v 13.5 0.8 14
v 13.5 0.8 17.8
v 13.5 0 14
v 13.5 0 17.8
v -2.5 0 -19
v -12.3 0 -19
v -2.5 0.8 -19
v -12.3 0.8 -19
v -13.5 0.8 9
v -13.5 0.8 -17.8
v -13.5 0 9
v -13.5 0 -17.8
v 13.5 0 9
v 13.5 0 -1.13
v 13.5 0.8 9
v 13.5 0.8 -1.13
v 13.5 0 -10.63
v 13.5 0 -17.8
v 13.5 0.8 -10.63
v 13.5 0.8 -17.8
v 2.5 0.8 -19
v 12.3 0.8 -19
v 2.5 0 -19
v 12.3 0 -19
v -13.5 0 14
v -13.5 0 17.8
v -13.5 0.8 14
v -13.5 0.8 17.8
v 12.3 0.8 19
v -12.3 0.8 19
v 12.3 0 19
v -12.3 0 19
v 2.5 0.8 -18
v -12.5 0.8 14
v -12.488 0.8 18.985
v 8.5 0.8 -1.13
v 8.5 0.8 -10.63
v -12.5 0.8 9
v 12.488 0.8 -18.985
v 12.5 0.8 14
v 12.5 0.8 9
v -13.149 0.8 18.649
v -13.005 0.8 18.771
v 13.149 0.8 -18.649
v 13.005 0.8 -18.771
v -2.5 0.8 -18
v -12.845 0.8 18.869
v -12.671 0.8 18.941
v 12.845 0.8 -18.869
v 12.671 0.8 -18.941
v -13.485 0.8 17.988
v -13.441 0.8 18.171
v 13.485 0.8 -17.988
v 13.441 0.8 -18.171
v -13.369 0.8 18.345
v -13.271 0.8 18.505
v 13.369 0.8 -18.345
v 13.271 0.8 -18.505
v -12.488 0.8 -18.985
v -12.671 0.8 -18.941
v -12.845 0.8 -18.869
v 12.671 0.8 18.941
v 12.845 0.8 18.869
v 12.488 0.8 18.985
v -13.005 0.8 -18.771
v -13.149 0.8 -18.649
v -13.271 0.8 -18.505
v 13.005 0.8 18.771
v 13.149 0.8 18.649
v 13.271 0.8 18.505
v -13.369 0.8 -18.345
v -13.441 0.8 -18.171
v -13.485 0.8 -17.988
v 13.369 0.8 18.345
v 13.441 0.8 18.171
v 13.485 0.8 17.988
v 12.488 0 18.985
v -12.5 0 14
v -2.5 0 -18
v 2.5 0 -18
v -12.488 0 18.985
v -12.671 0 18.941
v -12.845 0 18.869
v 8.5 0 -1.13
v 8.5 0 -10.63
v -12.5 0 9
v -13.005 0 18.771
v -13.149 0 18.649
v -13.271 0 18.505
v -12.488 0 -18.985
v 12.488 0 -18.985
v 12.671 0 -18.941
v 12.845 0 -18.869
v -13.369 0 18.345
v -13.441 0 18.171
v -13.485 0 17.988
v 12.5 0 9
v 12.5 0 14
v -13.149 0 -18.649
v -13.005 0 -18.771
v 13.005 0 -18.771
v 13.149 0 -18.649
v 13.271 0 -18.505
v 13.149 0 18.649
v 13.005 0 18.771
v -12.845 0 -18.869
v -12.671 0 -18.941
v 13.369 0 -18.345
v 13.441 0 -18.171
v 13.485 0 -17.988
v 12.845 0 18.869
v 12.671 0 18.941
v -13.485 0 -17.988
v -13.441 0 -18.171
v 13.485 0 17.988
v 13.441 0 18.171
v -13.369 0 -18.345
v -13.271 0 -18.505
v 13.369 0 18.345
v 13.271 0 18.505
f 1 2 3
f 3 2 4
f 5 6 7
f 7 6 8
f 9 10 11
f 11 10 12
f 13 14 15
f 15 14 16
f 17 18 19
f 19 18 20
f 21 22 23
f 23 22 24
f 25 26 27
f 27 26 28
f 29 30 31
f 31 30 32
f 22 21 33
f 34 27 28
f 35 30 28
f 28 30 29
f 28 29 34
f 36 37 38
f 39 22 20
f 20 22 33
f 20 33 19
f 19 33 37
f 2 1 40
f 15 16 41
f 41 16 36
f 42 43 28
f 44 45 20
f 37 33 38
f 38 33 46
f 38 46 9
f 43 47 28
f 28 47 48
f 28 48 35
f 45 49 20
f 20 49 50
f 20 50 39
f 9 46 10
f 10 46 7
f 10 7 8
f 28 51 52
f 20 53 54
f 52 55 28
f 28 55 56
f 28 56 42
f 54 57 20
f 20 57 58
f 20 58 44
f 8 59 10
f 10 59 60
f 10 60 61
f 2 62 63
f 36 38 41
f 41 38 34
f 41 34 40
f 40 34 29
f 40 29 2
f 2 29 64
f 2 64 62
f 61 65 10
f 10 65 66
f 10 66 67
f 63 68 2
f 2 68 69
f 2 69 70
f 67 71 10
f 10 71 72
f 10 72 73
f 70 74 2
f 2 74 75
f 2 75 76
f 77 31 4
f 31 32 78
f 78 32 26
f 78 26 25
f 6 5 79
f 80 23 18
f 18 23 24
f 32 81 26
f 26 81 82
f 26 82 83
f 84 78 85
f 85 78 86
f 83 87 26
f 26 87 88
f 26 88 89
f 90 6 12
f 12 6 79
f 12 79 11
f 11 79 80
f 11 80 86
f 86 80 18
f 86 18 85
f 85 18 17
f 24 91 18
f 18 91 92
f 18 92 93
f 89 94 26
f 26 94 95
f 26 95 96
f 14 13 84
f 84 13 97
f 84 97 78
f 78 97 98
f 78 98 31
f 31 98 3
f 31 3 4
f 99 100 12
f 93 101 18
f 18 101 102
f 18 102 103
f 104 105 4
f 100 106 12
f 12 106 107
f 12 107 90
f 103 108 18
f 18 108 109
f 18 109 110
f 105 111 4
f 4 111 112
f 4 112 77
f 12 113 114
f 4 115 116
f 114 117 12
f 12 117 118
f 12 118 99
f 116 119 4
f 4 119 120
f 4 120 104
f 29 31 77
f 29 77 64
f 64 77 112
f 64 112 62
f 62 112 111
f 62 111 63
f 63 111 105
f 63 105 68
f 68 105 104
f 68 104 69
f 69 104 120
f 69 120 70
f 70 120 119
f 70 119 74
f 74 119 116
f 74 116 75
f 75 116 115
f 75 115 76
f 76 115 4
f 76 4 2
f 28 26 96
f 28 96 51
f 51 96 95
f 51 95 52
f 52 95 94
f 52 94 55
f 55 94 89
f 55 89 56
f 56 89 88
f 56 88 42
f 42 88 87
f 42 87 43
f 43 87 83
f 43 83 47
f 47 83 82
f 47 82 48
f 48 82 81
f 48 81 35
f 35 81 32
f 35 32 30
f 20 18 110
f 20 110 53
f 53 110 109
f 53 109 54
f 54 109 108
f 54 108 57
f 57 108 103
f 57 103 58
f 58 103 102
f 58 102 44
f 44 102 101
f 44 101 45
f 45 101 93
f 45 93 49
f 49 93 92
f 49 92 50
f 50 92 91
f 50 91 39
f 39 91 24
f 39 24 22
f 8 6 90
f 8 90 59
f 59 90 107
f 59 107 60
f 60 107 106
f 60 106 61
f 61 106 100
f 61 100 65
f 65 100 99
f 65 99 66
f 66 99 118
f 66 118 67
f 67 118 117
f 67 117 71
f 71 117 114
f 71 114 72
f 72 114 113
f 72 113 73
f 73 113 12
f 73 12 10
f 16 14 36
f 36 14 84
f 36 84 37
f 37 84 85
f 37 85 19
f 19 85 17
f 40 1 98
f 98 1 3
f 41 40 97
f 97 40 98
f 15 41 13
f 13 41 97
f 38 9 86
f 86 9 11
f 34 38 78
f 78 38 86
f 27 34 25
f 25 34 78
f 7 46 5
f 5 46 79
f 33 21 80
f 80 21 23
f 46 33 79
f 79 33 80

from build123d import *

# Parameters (mm, degrees)
SKETCH_1_W          = 27
SKETCH_1_H          = 38
EXTRUDE_1_DEPTH     = 0.8
FILLET_1_R          = 1.2
CUT_EXTRUDE_1_REACH = 2.8
SKETCH_2_W          = 5
SKETCH_2_H          = 9.5
SKETCH_3_W          = 5
SKETCH_3_H          = 1
SKETCH_3_W_2        = 1
SKETCH_3_H_2        = 5
CUT_EXTRUDE_2_DEPTH = 10


with BuildPart() as part:
    # 草图1 → 凸台-拉伸1 (new body)
    with BuildSketch(Plane(origin=(0, 0, 0), x_dir=(1, 0, 0), z_dir=(0, 1, 0))):
        Rectangle(SKETCH_1_W, SKETCH_1_H)
    extrude(amount=EXTRUDE_1_DEPTH)

    # 圆角1
    fillet_1_edges = [part.edges().sort_by_distance(p)[0] for p in [
        (13.5, 0.4, 19),
        (-13.5, 0.4, 19),
        (-13.5, 0.4, -19),
        (13.5, 0.4, -19),
    ]]
    fillet(fillet_1_edges, radius=FILLET_1_R)

    # 草图2 → 切除-拉伸1 (cut, up to next)
    with BuildSketch(Plane(origin=(0, 0.8, 0), x_dir=(1, 0, 0), z_dir=(0, 1, 0)), mode=Mode.PRIVATE) as cut_extrude_1_sk1:
        with Locations((11, 5.88)):
            Rectangle(SKETCH_2_W, SKETCH_2_H)
    cut_extrude_1_tool1 = extrude(cut_extrude_1_sk1.sketch, amount=-CUT_EXTRUDE_1_REACH, mode=Mode.PRIVATE) & part.part
    add(cut_extrude_1_tool1.solids().sort_by_distance((11, 0.8, -5.88))[0], mode=Mode.SUBTRACT)

    # 草图3 → 切除-拉伸2 (cut)
    with BuildSketch(Plane(origin=(0, 0.8, 0), x_dir=(1, 0, 0), z_dir=(0, 1, 0))):
        with Locations((0, 18.5)):
            Rectangle(SKETCH_3_W, SKETCH_3_H)
        with Locations((-13, -11.5)):
            Rectangle(SKETCH_3_W_2, SKETCH_3_H_2)
        with Locations((13, -11.5)):
            Rectangle(SKETCH_3_W_2, SKETCH_3_H_2)
    extrude(amount=-CUT_EXTRUDE_2_DEPTH, mode=Mode.SUBTRACT)


solid = part.part
